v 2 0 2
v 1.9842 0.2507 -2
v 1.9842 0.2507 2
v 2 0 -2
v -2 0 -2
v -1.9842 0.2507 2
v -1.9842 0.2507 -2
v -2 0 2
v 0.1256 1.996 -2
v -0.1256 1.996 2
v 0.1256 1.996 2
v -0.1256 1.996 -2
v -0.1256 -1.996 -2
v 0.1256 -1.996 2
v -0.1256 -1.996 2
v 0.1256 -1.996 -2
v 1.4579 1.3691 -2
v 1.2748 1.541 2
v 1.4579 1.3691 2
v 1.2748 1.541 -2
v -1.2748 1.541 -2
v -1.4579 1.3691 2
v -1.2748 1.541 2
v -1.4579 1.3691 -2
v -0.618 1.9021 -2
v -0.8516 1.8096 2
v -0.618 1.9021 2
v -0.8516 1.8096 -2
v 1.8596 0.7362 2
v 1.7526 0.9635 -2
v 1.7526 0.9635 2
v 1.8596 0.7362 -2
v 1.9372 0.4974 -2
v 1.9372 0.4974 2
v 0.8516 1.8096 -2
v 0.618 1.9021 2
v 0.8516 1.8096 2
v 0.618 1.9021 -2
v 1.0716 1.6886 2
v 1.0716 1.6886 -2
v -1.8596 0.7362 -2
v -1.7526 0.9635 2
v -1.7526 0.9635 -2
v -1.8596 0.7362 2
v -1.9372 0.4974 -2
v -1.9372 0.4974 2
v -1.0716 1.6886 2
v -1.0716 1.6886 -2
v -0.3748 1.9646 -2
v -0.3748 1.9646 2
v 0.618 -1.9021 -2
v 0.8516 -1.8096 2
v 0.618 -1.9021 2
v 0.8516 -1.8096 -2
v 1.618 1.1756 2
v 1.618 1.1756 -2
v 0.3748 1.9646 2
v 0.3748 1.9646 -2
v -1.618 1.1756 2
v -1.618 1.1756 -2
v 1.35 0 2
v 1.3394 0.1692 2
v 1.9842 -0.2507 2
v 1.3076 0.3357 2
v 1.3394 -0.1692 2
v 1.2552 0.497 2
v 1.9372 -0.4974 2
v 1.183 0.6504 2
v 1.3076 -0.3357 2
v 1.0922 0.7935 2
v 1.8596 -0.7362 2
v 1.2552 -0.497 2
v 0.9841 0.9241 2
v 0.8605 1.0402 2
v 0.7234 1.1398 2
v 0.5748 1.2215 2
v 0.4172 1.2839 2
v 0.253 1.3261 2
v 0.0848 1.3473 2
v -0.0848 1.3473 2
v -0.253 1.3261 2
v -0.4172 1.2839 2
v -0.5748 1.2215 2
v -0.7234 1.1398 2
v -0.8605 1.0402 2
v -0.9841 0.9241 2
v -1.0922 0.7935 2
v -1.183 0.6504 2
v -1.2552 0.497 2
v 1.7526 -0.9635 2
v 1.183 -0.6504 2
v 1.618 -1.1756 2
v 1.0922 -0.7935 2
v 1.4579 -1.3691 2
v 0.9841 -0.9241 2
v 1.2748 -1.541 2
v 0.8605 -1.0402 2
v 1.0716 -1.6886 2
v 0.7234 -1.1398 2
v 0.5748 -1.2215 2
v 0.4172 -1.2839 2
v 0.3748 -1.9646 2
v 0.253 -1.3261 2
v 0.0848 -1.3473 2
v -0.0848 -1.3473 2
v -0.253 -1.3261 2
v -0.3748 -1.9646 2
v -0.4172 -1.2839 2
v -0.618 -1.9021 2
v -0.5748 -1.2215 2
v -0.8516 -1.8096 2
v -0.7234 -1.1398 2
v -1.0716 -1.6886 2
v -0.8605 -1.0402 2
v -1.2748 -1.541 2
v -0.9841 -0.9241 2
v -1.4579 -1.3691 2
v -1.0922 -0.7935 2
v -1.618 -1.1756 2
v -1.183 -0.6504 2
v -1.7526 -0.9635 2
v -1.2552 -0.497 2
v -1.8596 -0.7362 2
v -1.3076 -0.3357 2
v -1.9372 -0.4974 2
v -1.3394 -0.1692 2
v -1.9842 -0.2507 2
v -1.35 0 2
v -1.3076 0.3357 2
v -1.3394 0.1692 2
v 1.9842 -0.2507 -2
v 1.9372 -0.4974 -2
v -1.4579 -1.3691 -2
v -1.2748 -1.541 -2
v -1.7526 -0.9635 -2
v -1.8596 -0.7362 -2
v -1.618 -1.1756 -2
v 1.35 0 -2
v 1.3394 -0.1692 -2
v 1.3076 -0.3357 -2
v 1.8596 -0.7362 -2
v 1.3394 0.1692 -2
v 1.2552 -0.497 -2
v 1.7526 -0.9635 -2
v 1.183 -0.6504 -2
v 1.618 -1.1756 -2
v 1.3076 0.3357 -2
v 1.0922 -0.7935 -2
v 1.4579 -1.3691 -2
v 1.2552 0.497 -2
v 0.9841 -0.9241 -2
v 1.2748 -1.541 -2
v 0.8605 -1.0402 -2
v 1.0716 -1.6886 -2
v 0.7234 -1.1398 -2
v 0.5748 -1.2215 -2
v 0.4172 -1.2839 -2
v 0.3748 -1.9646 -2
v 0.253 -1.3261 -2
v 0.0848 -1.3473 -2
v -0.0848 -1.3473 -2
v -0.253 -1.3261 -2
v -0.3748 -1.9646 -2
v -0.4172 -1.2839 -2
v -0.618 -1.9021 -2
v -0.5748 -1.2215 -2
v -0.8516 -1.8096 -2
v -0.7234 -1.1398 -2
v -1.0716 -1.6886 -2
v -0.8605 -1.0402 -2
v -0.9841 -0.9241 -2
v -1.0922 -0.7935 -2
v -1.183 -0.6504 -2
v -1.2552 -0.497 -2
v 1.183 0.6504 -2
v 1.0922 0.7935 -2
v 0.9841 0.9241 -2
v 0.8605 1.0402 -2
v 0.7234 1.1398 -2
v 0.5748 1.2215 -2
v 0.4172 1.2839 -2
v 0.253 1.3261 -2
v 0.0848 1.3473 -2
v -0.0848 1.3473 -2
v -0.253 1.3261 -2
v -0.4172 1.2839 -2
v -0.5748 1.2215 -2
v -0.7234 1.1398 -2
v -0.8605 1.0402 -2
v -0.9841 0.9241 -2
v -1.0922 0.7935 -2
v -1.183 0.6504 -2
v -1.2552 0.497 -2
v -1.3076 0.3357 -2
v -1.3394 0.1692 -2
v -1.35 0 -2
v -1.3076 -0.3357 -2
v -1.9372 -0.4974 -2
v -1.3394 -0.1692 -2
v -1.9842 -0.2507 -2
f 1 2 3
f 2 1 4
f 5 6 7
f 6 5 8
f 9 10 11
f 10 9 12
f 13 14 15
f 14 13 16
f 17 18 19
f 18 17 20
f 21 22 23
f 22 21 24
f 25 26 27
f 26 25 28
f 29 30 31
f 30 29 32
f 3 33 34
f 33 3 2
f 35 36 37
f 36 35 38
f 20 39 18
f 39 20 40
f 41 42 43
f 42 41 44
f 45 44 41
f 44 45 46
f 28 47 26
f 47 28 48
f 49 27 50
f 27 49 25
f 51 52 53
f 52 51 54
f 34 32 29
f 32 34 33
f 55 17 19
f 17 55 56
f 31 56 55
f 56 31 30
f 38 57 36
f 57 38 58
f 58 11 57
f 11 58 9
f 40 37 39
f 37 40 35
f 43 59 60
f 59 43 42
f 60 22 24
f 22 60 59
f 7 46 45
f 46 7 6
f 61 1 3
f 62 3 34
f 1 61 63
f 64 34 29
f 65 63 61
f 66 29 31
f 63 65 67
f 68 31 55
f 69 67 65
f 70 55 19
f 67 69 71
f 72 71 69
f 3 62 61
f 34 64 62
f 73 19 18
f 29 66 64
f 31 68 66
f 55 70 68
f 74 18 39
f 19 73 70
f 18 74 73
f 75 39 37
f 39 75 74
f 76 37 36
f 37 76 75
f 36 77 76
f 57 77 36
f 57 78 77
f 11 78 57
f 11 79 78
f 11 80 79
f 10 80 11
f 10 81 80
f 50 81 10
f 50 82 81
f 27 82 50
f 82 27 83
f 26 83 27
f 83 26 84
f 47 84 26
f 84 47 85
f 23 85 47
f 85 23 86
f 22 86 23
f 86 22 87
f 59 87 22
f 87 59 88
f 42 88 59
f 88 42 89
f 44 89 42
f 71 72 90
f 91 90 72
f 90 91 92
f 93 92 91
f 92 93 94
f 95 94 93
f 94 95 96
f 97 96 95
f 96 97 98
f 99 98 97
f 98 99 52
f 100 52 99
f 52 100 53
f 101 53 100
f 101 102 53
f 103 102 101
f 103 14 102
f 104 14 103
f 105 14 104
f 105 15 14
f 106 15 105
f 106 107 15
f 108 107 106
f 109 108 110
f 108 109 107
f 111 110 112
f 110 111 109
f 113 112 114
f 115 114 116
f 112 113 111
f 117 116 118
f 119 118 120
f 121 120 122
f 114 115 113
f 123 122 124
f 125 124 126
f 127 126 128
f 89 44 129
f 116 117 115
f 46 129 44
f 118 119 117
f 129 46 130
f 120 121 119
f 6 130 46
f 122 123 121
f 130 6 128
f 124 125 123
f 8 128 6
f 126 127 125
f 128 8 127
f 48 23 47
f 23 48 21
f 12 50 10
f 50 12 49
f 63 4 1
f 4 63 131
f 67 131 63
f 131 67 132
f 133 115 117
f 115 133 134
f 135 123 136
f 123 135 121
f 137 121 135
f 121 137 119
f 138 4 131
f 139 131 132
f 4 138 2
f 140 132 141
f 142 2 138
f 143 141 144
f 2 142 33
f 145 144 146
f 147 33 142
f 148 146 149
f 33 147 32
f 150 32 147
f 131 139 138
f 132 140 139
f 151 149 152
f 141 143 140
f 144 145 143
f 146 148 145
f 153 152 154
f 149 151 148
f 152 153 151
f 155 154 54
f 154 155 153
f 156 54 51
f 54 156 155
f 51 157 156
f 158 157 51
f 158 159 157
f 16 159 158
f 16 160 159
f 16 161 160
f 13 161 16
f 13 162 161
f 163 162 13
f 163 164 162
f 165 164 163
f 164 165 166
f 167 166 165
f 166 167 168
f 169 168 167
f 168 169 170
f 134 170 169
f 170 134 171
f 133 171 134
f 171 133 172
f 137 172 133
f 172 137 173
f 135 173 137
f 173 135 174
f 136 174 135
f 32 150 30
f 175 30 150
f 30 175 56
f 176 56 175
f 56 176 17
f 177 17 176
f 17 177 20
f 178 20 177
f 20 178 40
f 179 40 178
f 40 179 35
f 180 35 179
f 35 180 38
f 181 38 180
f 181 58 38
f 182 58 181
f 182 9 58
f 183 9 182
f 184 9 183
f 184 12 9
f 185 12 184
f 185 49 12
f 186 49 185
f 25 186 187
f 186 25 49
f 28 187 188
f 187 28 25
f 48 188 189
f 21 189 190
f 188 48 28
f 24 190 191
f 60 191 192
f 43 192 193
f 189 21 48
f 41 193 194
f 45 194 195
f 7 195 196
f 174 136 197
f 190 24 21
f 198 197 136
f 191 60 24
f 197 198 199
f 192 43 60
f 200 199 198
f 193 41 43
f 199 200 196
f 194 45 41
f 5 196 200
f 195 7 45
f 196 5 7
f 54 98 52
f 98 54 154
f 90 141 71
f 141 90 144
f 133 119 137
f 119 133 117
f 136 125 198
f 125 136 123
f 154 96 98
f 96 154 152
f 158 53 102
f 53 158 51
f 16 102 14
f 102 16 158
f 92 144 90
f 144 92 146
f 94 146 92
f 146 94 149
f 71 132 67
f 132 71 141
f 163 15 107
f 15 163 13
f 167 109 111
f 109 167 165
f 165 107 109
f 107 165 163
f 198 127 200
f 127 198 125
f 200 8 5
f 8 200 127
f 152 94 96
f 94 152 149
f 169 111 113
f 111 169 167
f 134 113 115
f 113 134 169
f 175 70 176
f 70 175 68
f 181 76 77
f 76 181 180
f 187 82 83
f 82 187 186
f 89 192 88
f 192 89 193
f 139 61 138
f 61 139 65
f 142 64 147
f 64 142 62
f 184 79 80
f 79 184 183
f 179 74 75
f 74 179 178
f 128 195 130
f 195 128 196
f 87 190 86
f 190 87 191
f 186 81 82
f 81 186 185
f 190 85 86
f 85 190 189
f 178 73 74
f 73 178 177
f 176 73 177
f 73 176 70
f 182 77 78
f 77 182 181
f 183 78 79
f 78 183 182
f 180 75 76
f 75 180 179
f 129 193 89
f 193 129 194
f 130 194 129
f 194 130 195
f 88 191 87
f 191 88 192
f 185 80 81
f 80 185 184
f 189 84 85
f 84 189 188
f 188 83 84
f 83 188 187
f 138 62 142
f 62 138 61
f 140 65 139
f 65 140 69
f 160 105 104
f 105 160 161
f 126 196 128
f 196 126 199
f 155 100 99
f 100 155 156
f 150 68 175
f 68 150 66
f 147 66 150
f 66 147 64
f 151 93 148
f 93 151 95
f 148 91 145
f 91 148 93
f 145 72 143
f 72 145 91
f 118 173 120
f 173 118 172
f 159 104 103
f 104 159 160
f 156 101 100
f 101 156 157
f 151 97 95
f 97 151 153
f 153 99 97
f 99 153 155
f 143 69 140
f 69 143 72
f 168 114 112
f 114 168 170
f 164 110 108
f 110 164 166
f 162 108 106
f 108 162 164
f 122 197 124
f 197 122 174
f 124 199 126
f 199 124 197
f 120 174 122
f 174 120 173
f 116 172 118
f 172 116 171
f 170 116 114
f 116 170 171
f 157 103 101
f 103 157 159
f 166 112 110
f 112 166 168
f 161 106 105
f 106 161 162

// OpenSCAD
$fn = 50;


difference() {
	union() {
		translate(v = [0, 0, -2.0000000000]) {
			cylinder(h = 4, r = 2.0000000000);
		}
	}
	union() {
		translate(v = [0, 0, -100.0000000000]) {
			cylinder(h = 200, r = 1.3500000000);
		}
	}
}
